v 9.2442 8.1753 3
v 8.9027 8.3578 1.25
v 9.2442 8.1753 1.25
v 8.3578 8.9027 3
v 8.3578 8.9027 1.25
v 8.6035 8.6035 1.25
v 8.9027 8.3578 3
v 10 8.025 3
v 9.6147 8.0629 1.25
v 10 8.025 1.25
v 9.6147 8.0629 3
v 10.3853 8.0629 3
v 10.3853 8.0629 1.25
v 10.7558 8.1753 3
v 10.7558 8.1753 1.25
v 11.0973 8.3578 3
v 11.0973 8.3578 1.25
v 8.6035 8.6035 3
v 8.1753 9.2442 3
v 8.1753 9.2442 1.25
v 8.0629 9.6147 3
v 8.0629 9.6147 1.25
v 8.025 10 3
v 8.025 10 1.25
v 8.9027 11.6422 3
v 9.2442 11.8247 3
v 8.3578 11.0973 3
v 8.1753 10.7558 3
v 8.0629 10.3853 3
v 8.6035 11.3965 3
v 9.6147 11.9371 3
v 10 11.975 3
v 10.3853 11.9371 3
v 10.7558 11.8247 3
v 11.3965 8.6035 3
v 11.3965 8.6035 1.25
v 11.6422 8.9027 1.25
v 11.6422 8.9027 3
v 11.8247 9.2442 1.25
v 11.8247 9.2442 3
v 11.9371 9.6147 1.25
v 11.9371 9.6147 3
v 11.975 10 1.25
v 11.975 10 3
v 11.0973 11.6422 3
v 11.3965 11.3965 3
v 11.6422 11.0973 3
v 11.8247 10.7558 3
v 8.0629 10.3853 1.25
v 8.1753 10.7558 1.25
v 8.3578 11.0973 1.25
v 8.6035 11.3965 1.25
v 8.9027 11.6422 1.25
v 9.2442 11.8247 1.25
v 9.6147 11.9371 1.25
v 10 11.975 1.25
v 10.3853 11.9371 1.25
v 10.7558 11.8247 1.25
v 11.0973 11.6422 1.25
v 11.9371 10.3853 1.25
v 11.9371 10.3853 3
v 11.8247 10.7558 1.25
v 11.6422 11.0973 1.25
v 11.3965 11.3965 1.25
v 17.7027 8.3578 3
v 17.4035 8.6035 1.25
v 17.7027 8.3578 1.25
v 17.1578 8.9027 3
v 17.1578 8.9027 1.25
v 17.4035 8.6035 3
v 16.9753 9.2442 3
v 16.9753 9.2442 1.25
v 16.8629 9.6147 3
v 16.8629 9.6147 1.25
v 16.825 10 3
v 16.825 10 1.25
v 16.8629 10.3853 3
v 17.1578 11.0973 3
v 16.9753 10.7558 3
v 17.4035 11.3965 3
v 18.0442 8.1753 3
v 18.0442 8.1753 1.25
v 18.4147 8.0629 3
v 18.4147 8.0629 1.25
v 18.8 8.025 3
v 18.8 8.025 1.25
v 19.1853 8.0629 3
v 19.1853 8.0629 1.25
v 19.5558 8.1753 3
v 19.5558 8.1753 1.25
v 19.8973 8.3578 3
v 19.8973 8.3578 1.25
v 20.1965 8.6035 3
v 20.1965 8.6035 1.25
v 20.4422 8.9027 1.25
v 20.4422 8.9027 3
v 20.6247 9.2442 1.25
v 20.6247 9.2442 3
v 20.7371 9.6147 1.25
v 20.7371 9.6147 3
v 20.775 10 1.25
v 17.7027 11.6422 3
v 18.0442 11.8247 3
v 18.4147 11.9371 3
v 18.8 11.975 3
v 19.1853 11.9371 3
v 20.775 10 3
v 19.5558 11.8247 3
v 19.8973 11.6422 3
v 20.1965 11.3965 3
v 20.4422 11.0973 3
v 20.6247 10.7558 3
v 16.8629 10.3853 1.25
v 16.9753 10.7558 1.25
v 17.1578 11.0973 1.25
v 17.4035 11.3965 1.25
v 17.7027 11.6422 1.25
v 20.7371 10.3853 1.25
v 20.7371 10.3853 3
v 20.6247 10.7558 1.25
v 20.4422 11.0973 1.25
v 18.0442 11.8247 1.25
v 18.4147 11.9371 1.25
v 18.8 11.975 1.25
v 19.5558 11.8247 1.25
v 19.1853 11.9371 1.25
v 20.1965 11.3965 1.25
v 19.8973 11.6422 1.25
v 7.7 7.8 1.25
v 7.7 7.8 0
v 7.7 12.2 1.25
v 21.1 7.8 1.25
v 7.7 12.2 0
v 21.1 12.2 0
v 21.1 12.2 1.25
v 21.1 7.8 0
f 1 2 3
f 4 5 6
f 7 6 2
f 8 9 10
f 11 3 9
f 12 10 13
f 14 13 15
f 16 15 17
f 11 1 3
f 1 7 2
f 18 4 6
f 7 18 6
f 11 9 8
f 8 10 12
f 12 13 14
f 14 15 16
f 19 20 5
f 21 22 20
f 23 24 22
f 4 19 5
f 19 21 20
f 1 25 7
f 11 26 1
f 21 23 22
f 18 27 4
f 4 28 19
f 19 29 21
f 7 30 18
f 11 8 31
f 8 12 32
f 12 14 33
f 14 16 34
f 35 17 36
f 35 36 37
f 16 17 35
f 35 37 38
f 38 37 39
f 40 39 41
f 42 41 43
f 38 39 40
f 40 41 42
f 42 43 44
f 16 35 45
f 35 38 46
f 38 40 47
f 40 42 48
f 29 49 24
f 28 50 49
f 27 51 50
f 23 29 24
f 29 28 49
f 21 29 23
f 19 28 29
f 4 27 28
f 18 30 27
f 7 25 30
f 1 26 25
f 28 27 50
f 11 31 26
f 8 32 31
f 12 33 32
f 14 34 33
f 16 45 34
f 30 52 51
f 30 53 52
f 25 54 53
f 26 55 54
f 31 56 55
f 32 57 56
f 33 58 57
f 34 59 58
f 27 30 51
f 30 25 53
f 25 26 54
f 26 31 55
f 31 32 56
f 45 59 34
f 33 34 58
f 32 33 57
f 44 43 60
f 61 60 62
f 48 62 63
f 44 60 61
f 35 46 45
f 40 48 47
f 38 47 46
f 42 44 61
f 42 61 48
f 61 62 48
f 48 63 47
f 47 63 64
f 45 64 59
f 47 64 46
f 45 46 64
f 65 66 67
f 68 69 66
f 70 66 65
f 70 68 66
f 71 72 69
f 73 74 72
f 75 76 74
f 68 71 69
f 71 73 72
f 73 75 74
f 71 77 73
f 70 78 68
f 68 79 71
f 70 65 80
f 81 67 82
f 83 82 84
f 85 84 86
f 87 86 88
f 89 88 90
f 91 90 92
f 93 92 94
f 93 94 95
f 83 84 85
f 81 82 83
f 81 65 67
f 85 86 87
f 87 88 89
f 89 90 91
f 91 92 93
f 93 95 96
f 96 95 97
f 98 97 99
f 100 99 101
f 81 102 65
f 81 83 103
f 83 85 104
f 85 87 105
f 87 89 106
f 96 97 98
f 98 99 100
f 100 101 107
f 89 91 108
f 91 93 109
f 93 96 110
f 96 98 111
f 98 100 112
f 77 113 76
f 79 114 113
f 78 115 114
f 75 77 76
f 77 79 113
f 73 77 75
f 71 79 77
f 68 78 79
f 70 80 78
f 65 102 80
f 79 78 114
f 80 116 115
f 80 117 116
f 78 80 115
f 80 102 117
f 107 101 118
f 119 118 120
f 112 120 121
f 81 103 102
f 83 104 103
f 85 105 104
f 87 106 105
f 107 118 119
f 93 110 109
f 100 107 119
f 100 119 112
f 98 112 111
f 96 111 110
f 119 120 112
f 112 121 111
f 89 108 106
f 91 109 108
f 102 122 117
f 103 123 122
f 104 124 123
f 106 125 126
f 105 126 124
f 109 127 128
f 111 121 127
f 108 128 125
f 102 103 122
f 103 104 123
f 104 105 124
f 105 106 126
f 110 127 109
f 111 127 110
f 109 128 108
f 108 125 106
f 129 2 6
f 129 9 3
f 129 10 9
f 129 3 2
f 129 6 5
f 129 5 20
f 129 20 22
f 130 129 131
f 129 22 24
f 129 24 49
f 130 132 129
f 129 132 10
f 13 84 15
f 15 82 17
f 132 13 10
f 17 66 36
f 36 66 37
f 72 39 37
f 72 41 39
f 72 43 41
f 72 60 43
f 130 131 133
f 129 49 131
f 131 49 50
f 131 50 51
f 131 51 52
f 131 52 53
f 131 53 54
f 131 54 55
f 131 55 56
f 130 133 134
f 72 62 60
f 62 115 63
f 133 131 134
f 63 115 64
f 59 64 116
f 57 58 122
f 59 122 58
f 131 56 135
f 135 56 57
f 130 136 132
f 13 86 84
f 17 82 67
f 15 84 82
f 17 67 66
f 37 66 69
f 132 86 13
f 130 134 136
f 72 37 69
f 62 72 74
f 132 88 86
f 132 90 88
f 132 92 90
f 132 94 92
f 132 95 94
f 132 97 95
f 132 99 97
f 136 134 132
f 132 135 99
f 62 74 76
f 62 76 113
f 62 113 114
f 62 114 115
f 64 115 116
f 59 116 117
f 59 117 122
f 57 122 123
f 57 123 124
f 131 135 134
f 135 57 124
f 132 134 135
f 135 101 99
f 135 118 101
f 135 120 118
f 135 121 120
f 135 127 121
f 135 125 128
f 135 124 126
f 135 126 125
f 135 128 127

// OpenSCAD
// Dholydai: 28 Mar 2025

$fn=32;

//Reset and Run Covers
translate([0,0,1.25])
rotate([0,0,0]){
     #translate([10,10,0])
         cylinder(d=3.95,h=1.75);
     }

translate([0,0,1.25])     
rotate([0,0,0]){
     #translate([18.8,10,0])
         cylinder(d=3.95,h=1.75);
     }
translate([7.7,7.8,0])
cube([13.4,4.4,1.25]);
